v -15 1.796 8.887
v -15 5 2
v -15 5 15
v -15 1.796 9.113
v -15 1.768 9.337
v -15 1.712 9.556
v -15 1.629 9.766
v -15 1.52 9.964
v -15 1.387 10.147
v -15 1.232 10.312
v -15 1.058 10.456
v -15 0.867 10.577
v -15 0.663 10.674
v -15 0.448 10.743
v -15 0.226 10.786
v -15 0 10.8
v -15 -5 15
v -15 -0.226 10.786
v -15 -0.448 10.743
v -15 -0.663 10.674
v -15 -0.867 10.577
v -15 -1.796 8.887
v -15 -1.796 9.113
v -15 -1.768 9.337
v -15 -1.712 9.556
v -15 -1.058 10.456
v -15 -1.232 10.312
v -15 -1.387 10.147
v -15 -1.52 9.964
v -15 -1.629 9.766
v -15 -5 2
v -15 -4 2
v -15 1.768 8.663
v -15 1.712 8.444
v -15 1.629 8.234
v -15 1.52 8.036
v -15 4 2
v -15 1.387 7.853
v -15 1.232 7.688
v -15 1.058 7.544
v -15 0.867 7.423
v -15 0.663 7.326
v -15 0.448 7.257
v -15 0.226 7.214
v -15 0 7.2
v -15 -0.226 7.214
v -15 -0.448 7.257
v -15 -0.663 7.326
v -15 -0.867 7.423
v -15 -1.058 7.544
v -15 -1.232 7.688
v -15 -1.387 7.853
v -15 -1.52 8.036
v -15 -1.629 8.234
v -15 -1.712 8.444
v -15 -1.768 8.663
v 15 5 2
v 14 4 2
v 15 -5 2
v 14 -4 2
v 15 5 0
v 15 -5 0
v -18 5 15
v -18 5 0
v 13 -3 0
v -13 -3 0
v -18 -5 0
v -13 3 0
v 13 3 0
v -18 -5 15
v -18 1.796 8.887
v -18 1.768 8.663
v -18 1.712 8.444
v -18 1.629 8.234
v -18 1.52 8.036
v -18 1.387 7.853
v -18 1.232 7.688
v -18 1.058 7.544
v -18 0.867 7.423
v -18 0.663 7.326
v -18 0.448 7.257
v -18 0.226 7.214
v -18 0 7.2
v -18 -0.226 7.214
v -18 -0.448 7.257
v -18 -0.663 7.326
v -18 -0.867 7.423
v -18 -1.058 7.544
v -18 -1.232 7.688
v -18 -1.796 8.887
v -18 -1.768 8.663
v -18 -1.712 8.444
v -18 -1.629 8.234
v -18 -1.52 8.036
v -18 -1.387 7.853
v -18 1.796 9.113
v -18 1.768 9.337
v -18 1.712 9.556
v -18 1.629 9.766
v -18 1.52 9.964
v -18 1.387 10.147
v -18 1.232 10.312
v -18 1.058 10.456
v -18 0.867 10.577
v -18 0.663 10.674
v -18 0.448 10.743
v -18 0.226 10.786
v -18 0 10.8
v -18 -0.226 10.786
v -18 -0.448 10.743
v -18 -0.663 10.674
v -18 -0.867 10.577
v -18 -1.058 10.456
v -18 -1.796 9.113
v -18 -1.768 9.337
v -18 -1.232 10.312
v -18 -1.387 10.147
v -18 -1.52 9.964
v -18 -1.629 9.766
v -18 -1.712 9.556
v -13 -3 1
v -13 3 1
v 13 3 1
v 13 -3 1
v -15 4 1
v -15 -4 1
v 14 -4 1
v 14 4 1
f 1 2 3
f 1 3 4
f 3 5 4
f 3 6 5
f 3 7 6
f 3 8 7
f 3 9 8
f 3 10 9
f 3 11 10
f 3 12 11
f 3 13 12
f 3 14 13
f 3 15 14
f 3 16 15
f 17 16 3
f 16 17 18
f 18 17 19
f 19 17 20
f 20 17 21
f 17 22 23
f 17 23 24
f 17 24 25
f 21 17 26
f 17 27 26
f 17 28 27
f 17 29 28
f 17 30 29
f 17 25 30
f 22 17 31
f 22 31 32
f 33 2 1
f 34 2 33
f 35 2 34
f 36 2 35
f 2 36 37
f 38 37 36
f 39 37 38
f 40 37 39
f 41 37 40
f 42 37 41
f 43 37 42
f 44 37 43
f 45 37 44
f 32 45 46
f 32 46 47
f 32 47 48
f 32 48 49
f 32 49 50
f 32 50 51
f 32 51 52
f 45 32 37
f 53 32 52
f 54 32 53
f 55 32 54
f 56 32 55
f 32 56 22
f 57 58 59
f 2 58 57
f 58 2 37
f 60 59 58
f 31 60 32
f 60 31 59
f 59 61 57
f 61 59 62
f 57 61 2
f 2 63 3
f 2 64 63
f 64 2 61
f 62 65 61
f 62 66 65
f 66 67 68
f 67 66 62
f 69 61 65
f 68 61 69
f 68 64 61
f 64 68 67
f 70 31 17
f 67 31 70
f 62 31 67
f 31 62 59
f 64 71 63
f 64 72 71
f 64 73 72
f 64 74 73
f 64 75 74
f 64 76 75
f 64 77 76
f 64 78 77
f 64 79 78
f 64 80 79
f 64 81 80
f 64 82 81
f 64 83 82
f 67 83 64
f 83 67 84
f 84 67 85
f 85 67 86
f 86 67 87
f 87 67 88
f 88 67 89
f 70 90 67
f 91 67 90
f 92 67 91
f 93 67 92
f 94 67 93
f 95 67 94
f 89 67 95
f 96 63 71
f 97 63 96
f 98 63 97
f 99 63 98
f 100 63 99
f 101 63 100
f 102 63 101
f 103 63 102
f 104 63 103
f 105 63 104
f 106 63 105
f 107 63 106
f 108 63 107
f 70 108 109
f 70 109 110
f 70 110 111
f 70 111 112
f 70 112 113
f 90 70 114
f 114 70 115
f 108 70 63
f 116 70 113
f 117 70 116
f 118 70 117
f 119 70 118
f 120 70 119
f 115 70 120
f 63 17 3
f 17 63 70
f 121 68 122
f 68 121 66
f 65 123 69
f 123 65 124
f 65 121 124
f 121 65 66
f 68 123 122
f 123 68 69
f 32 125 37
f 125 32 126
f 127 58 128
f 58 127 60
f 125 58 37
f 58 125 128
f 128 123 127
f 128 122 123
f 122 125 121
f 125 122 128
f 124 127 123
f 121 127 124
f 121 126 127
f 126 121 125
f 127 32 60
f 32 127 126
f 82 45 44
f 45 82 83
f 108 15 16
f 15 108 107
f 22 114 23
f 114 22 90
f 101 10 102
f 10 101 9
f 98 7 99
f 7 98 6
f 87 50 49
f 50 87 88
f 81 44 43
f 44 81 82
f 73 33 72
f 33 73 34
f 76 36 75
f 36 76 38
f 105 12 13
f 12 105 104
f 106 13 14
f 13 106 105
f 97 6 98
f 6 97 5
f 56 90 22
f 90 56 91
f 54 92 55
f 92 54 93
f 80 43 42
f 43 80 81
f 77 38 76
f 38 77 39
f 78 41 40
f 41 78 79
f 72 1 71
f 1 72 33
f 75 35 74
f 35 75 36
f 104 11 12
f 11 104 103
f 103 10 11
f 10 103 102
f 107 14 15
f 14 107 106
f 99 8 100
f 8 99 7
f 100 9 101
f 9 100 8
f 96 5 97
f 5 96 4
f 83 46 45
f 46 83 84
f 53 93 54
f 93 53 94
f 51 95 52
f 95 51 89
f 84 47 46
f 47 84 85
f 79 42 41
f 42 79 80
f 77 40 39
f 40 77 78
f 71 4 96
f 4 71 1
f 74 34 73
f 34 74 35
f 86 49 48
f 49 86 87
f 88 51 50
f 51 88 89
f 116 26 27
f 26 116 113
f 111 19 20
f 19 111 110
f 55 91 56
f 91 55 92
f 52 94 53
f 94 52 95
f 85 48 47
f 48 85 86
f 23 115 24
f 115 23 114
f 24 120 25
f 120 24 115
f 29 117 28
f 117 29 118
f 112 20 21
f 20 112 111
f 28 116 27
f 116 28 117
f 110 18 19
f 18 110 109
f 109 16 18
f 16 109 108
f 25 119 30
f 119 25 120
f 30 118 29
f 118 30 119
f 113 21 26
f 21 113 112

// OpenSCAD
$fn = 50;


difference() {
	union() {
		translate(v = [-15.0000000000, -5.0000000000, 0]) {
			rotate(a = [0, 0, 0]) {
				cube(size = [30, 10, 2]);
			}
		}
		translate(v = [-18.0000000000, -5.0000000000, 0]) {
			rotate(a = [0, 0, 0]) {
				cube(size = [3, 10, 15]);
			}
		}
	}
	union() {
		translate(v = [-13.0000000000, -3.0000000000, 0]) {
			rotate(a = [0, 0, 0]) {
				cube(size = [26, 6, 2]);
			}
		}
		translate(v = [-15.0000000000, -4.0000000000, 1]) {
			rotate(a = [0, 0, 0]) {
				cube(size = [29, 8, 1]);
			}
		}
		#translate(v = [-25.0000000000, 0, 9]) {
			rotate(a = [0, 90, 0]) {
				cylinder(h = 20, r = 1.8000000000);
			}
		}
	}
}
